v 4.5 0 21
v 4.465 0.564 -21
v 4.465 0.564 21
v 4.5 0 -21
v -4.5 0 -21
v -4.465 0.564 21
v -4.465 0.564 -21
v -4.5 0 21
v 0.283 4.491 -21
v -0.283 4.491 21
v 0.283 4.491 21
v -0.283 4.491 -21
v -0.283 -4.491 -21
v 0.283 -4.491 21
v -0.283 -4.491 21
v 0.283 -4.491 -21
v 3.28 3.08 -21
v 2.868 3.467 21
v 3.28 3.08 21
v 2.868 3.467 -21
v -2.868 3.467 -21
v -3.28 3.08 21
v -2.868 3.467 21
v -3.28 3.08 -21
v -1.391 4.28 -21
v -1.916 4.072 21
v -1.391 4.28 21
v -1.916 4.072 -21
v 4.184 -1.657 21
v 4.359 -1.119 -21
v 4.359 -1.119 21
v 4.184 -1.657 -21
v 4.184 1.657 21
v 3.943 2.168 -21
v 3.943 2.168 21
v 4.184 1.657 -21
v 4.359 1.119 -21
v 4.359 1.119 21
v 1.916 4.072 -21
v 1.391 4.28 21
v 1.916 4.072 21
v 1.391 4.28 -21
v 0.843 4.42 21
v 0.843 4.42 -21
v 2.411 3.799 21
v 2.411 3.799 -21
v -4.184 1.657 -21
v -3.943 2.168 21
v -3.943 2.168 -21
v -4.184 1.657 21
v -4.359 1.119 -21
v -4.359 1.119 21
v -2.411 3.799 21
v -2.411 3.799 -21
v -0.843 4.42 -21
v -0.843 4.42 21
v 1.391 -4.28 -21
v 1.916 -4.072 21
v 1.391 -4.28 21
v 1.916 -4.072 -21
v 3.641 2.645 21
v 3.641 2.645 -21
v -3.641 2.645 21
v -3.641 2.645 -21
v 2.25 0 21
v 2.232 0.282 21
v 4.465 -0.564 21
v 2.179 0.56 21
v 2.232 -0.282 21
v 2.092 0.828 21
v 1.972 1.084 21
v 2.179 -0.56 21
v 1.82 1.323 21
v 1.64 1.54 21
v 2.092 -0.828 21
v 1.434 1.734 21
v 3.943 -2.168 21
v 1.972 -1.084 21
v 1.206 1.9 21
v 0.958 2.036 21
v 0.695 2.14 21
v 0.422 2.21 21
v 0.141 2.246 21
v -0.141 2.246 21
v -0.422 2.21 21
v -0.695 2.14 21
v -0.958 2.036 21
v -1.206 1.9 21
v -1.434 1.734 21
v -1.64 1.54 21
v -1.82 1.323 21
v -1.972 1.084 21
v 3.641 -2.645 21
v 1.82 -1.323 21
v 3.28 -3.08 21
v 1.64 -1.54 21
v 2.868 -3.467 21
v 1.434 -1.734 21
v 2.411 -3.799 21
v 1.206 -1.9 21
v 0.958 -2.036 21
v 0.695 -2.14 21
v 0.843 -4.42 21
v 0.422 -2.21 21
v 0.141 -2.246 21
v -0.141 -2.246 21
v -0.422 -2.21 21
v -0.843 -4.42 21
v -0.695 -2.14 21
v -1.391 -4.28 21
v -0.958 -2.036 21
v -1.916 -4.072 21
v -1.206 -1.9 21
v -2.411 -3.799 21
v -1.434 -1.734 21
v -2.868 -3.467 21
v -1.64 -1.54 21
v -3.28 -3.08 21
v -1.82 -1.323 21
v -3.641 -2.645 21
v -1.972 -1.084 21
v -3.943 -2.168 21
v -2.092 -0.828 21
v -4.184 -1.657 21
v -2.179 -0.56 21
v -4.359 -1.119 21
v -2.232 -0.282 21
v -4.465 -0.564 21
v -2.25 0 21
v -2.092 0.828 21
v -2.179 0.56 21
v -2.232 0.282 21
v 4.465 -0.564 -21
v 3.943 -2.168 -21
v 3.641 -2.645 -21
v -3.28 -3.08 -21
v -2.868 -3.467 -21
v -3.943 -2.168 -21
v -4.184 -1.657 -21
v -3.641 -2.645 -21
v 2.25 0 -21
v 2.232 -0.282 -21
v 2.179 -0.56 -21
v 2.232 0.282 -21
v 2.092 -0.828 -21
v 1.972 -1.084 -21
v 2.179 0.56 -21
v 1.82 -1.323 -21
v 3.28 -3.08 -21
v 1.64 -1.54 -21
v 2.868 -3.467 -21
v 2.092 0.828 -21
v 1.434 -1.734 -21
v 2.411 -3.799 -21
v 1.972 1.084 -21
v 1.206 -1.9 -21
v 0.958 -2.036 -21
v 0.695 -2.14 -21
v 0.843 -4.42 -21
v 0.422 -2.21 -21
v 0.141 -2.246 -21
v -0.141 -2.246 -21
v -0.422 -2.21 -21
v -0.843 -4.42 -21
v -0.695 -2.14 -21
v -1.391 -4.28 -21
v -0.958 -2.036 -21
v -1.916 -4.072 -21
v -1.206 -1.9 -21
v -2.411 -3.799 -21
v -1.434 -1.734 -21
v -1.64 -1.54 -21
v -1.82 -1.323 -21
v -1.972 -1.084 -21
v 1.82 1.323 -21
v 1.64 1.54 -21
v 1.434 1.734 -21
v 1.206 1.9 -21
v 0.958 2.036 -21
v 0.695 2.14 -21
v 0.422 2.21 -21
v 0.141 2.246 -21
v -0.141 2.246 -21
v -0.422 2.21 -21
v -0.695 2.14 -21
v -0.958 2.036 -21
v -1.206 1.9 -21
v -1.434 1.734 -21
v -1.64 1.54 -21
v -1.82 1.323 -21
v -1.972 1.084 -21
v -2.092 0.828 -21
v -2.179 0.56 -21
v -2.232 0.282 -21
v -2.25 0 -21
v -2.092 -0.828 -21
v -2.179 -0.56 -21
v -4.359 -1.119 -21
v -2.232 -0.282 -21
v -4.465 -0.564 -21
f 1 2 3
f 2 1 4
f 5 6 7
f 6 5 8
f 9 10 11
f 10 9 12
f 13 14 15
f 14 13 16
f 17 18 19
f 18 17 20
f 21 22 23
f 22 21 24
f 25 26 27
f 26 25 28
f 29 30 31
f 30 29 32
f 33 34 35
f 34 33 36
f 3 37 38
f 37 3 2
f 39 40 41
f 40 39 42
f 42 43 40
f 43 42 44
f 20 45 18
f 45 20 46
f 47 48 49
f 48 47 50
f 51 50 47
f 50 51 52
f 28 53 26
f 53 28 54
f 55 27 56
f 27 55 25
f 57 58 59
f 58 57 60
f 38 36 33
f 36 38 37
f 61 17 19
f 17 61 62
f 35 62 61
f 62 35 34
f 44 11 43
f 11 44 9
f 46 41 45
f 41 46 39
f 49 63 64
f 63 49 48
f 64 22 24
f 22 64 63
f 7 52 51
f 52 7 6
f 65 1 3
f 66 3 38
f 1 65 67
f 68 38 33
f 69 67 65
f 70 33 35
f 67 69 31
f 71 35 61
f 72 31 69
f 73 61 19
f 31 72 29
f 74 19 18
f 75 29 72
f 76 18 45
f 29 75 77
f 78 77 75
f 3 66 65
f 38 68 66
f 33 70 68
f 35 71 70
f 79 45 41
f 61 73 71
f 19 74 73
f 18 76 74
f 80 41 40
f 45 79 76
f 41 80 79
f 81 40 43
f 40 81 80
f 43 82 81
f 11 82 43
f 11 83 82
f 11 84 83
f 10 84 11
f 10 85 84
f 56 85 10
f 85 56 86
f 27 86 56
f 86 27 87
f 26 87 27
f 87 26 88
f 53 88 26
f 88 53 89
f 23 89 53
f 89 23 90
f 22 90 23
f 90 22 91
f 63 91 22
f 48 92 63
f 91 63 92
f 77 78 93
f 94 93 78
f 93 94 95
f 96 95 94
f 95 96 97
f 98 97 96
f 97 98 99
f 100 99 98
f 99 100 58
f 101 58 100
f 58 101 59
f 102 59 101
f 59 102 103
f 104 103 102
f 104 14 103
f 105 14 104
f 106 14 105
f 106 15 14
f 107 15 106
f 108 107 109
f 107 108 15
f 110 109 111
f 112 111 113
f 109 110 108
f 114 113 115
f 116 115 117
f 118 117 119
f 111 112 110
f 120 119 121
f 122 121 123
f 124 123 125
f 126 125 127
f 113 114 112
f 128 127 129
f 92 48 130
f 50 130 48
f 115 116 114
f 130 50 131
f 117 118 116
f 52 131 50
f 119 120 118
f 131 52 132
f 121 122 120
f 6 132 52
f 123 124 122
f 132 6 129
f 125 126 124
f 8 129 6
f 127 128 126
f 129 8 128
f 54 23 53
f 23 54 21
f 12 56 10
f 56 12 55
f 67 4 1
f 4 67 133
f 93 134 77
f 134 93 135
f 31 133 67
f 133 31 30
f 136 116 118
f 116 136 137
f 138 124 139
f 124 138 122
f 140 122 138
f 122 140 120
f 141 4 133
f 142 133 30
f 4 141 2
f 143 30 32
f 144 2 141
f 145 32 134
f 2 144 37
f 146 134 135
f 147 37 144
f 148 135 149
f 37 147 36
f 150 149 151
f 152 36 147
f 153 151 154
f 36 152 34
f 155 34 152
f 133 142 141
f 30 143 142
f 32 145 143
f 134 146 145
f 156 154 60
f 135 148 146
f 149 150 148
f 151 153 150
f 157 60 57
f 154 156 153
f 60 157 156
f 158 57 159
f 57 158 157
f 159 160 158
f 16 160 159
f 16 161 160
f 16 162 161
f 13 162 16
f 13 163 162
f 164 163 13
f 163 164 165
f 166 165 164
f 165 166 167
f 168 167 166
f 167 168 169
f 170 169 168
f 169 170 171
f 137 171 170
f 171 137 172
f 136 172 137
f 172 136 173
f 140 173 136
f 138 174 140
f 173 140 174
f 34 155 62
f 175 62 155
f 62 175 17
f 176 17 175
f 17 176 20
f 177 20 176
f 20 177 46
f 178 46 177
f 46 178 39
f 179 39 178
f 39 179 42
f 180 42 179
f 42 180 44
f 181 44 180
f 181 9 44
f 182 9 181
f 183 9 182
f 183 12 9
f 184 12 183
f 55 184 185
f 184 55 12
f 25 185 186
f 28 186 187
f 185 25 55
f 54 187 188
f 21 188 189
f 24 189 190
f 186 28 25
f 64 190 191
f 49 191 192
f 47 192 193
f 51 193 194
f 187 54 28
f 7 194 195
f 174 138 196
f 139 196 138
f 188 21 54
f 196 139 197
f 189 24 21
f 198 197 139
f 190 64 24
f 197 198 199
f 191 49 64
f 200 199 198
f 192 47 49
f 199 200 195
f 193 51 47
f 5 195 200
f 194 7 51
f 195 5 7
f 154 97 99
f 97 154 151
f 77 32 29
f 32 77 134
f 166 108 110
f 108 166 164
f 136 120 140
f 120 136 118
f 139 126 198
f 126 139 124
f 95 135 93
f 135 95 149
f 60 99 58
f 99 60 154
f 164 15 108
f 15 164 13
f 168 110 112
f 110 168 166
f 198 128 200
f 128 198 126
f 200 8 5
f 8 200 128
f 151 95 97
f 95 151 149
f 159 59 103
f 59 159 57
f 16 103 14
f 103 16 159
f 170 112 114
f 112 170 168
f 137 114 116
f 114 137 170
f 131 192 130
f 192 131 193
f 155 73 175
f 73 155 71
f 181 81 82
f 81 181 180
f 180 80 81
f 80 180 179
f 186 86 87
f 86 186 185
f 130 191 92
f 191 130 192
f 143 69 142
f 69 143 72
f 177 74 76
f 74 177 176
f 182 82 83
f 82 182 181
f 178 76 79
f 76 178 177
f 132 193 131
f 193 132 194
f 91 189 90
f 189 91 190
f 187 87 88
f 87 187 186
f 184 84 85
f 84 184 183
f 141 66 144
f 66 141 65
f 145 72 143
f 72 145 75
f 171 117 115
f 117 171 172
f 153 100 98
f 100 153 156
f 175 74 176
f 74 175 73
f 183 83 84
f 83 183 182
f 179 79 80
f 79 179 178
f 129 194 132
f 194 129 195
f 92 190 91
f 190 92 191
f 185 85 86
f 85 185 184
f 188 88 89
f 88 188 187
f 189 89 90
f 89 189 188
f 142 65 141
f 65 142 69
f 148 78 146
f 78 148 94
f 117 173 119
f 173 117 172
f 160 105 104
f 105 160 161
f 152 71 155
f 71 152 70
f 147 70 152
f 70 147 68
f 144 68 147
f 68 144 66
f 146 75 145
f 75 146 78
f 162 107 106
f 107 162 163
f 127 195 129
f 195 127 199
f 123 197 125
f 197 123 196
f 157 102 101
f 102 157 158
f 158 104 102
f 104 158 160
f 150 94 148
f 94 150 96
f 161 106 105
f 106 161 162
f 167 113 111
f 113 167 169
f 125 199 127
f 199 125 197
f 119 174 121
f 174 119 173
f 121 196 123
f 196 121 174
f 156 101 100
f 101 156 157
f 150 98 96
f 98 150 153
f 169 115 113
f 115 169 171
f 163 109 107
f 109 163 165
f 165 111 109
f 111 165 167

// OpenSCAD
$fn = 50;


difference() {
	union() {
		translate(v = [0, 0, -21.0000000000]) {
			cylinder(h = 42, r = 4.5000000000);
		}
	}
	union() {
		translate(v = [0, 0, -100.0000000000]) {
			cylinder(h = 200, r = 2.2500000000);
		}
	}
}
